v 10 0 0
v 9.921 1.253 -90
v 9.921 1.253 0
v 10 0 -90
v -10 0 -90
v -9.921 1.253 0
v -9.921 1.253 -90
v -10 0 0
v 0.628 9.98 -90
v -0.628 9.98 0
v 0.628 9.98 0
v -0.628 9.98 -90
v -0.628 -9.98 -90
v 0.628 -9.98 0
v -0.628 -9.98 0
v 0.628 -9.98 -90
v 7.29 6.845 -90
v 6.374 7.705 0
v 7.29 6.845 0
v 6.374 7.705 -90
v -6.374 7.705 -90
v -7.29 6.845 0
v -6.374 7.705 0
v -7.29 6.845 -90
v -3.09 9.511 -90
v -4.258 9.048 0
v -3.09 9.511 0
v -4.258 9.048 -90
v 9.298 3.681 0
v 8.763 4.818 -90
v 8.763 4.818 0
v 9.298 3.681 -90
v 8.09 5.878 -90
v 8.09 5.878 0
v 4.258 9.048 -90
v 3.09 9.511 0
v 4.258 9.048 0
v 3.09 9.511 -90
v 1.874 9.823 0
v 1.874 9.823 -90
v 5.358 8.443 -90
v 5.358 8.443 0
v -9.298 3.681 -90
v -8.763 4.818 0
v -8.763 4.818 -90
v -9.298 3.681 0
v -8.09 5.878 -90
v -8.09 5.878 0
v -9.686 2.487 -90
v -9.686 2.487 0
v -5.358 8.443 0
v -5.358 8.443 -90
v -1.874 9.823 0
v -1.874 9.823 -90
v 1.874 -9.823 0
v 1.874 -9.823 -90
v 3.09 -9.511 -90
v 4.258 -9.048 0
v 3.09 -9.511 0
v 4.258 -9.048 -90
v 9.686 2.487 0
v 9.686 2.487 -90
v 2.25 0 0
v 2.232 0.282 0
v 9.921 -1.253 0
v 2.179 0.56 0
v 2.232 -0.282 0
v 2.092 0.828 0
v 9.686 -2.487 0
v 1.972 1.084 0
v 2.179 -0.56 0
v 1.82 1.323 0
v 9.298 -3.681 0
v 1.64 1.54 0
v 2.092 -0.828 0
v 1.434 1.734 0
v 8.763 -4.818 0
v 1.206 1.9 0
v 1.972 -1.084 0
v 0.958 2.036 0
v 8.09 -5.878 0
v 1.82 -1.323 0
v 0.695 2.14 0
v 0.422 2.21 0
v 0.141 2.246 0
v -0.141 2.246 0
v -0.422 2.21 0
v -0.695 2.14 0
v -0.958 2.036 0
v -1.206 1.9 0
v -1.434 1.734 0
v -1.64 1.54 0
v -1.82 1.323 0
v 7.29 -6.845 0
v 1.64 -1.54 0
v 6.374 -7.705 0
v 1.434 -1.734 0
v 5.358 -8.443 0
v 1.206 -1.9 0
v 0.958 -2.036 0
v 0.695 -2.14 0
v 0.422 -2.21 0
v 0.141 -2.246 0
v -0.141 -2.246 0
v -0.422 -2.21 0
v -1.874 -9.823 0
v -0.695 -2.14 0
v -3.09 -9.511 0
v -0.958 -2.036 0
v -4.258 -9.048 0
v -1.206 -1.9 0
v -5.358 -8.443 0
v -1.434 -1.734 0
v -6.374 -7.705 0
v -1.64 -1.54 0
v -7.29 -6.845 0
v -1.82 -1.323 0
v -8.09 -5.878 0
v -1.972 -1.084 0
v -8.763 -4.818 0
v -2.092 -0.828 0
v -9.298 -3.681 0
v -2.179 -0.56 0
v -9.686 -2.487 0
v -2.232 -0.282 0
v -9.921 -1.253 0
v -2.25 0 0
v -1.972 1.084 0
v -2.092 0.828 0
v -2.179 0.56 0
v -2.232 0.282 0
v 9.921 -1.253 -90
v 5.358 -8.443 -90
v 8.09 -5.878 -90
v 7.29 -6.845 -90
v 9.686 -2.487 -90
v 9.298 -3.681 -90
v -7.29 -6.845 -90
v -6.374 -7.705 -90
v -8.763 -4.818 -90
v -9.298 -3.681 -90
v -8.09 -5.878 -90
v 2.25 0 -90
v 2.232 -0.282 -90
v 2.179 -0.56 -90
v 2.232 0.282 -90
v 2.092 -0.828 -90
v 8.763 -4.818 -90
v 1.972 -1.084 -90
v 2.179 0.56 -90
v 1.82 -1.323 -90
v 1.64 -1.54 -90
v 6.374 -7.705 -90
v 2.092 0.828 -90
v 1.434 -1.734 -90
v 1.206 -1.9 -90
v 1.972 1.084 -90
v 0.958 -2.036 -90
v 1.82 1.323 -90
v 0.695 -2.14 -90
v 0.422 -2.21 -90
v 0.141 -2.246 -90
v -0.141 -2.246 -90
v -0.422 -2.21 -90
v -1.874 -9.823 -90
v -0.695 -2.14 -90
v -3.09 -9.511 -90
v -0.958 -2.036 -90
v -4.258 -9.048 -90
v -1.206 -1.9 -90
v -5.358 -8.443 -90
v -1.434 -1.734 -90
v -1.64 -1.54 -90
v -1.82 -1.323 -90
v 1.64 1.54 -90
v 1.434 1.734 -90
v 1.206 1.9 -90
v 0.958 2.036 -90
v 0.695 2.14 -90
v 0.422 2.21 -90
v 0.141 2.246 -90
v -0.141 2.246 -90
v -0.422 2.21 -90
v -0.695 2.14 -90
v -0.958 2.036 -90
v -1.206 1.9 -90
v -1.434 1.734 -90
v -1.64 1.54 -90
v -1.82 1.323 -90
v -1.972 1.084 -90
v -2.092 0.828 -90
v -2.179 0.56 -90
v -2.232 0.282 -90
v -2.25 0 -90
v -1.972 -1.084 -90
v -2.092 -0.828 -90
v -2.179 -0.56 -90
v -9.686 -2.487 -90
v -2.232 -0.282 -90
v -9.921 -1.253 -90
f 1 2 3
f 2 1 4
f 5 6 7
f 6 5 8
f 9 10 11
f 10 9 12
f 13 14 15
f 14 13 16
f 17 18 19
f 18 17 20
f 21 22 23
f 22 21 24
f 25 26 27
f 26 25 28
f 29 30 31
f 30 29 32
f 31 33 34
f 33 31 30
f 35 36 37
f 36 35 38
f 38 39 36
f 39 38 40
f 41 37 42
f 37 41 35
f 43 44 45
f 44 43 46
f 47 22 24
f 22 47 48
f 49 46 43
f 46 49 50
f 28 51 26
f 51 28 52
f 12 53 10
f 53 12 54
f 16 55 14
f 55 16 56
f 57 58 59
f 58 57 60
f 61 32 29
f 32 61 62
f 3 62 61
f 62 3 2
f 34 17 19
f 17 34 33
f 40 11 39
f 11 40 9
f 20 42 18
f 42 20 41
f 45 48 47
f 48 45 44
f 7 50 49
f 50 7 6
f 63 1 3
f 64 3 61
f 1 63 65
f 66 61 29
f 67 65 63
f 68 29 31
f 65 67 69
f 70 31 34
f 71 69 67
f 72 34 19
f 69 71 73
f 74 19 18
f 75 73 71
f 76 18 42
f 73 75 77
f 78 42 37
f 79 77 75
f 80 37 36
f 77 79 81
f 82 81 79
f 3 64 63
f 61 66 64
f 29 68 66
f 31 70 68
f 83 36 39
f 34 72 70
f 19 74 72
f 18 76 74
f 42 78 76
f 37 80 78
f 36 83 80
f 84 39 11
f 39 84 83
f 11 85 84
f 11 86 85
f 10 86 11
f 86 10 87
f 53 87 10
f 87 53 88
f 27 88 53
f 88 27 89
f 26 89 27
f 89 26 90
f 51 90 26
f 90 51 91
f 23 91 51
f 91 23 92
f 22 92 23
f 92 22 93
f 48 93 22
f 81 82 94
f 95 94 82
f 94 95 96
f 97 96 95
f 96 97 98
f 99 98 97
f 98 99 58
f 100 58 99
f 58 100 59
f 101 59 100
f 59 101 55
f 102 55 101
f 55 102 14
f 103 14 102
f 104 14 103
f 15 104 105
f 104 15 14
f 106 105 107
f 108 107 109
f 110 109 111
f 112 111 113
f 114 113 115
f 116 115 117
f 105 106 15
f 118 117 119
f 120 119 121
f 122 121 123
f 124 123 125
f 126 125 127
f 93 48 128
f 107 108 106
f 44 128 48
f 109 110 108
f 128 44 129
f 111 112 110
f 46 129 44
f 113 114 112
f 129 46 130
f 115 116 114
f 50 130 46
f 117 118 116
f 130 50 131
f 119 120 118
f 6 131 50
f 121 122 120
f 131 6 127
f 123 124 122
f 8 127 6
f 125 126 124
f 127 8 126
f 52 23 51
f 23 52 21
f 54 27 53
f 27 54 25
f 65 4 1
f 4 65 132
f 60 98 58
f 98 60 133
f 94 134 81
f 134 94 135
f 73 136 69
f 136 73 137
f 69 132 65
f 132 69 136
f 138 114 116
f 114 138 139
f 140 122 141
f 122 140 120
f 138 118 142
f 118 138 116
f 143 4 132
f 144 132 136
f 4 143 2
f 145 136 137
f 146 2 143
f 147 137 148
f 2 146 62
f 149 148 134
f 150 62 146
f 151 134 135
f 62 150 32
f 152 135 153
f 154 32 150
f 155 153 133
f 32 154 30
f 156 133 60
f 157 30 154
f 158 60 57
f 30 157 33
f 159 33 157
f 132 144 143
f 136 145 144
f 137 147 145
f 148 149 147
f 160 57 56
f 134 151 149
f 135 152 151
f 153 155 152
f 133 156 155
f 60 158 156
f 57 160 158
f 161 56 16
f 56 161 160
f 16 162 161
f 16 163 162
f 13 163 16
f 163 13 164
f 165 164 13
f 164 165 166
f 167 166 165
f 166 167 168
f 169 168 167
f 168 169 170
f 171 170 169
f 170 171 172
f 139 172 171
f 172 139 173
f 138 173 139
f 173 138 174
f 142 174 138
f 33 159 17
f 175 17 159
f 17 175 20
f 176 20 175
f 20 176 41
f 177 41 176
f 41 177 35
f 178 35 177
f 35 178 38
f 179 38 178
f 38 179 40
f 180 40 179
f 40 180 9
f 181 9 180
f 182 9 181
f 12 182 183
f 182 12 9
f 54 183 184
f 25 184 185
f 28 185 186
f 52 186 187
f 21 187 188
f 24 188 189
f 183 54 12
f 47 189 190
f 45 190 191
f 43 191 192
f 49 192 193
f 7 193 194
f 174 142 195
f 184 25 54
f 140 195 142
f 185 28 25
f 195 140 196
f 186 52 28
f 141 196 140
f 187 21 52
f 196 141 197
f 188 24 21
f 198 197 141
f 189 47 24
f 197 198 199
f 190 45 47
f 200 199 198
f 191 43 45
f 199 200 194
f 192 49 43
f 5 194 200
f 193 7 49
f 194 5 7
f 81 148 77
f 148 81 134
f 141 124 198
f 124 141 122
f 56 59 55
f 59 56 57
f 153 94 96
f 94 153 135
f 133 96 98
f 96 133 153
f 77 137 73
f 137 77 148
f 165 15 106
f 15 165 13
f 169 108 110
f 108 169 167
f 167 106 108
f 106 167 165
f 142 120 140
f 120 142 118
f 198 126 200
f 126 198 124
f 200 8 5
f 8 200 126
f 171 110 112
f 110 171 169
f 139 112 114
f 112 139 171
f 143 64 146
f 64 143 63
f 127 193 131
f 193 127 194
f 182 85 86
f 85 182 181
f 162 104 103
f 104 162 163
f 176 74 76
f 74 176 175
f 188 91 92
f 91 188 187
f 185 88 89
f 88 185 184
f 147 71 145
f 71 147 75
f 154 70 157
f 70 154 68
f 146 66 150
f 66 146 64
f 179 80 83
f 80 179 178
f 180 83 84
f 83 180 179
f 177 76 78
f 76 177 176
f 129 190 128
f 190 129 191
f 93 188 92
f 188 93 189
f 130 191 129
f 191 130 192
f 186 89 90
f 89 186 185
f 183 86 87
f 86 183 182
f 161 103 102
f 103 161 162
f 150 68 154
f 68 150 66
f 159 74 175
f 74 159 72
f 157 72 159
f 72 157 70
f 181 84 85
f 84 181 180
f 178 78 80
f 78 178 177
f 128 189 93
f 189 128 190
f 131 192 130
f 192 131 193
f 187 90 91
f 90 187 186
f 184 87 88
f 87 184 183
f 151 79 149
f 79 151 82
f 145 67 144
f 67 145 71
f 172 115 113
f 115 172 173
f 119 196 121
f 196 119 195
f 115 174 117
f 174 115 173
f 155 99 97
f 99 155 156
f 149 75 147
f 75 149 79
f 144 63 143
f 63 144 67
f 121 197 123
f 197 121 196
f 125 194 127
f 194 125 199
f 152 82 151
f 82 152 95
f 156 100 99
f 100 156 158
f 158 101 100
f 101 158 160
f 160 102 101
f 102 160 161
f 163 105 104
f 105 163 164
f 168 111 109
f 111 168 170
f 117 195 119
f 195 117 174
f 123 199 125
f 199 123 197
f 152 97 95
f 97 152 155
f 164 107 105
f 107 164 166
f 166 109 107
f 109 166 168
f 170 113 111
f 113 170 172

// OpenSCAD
$fn = 50;


difference() {
	union() {
		translate(v = [0, 0, -90.0000000000]) {
			cylinder(h = 90, r = 10.0000000000);
		}
		cylinder(h = 0, r = 13.0000000000);
	}
	union() {
		#translate(v = [0, 0, -90]) {
			cylinder(h = 90, r = 2.2500000000);
		}
	}
}
